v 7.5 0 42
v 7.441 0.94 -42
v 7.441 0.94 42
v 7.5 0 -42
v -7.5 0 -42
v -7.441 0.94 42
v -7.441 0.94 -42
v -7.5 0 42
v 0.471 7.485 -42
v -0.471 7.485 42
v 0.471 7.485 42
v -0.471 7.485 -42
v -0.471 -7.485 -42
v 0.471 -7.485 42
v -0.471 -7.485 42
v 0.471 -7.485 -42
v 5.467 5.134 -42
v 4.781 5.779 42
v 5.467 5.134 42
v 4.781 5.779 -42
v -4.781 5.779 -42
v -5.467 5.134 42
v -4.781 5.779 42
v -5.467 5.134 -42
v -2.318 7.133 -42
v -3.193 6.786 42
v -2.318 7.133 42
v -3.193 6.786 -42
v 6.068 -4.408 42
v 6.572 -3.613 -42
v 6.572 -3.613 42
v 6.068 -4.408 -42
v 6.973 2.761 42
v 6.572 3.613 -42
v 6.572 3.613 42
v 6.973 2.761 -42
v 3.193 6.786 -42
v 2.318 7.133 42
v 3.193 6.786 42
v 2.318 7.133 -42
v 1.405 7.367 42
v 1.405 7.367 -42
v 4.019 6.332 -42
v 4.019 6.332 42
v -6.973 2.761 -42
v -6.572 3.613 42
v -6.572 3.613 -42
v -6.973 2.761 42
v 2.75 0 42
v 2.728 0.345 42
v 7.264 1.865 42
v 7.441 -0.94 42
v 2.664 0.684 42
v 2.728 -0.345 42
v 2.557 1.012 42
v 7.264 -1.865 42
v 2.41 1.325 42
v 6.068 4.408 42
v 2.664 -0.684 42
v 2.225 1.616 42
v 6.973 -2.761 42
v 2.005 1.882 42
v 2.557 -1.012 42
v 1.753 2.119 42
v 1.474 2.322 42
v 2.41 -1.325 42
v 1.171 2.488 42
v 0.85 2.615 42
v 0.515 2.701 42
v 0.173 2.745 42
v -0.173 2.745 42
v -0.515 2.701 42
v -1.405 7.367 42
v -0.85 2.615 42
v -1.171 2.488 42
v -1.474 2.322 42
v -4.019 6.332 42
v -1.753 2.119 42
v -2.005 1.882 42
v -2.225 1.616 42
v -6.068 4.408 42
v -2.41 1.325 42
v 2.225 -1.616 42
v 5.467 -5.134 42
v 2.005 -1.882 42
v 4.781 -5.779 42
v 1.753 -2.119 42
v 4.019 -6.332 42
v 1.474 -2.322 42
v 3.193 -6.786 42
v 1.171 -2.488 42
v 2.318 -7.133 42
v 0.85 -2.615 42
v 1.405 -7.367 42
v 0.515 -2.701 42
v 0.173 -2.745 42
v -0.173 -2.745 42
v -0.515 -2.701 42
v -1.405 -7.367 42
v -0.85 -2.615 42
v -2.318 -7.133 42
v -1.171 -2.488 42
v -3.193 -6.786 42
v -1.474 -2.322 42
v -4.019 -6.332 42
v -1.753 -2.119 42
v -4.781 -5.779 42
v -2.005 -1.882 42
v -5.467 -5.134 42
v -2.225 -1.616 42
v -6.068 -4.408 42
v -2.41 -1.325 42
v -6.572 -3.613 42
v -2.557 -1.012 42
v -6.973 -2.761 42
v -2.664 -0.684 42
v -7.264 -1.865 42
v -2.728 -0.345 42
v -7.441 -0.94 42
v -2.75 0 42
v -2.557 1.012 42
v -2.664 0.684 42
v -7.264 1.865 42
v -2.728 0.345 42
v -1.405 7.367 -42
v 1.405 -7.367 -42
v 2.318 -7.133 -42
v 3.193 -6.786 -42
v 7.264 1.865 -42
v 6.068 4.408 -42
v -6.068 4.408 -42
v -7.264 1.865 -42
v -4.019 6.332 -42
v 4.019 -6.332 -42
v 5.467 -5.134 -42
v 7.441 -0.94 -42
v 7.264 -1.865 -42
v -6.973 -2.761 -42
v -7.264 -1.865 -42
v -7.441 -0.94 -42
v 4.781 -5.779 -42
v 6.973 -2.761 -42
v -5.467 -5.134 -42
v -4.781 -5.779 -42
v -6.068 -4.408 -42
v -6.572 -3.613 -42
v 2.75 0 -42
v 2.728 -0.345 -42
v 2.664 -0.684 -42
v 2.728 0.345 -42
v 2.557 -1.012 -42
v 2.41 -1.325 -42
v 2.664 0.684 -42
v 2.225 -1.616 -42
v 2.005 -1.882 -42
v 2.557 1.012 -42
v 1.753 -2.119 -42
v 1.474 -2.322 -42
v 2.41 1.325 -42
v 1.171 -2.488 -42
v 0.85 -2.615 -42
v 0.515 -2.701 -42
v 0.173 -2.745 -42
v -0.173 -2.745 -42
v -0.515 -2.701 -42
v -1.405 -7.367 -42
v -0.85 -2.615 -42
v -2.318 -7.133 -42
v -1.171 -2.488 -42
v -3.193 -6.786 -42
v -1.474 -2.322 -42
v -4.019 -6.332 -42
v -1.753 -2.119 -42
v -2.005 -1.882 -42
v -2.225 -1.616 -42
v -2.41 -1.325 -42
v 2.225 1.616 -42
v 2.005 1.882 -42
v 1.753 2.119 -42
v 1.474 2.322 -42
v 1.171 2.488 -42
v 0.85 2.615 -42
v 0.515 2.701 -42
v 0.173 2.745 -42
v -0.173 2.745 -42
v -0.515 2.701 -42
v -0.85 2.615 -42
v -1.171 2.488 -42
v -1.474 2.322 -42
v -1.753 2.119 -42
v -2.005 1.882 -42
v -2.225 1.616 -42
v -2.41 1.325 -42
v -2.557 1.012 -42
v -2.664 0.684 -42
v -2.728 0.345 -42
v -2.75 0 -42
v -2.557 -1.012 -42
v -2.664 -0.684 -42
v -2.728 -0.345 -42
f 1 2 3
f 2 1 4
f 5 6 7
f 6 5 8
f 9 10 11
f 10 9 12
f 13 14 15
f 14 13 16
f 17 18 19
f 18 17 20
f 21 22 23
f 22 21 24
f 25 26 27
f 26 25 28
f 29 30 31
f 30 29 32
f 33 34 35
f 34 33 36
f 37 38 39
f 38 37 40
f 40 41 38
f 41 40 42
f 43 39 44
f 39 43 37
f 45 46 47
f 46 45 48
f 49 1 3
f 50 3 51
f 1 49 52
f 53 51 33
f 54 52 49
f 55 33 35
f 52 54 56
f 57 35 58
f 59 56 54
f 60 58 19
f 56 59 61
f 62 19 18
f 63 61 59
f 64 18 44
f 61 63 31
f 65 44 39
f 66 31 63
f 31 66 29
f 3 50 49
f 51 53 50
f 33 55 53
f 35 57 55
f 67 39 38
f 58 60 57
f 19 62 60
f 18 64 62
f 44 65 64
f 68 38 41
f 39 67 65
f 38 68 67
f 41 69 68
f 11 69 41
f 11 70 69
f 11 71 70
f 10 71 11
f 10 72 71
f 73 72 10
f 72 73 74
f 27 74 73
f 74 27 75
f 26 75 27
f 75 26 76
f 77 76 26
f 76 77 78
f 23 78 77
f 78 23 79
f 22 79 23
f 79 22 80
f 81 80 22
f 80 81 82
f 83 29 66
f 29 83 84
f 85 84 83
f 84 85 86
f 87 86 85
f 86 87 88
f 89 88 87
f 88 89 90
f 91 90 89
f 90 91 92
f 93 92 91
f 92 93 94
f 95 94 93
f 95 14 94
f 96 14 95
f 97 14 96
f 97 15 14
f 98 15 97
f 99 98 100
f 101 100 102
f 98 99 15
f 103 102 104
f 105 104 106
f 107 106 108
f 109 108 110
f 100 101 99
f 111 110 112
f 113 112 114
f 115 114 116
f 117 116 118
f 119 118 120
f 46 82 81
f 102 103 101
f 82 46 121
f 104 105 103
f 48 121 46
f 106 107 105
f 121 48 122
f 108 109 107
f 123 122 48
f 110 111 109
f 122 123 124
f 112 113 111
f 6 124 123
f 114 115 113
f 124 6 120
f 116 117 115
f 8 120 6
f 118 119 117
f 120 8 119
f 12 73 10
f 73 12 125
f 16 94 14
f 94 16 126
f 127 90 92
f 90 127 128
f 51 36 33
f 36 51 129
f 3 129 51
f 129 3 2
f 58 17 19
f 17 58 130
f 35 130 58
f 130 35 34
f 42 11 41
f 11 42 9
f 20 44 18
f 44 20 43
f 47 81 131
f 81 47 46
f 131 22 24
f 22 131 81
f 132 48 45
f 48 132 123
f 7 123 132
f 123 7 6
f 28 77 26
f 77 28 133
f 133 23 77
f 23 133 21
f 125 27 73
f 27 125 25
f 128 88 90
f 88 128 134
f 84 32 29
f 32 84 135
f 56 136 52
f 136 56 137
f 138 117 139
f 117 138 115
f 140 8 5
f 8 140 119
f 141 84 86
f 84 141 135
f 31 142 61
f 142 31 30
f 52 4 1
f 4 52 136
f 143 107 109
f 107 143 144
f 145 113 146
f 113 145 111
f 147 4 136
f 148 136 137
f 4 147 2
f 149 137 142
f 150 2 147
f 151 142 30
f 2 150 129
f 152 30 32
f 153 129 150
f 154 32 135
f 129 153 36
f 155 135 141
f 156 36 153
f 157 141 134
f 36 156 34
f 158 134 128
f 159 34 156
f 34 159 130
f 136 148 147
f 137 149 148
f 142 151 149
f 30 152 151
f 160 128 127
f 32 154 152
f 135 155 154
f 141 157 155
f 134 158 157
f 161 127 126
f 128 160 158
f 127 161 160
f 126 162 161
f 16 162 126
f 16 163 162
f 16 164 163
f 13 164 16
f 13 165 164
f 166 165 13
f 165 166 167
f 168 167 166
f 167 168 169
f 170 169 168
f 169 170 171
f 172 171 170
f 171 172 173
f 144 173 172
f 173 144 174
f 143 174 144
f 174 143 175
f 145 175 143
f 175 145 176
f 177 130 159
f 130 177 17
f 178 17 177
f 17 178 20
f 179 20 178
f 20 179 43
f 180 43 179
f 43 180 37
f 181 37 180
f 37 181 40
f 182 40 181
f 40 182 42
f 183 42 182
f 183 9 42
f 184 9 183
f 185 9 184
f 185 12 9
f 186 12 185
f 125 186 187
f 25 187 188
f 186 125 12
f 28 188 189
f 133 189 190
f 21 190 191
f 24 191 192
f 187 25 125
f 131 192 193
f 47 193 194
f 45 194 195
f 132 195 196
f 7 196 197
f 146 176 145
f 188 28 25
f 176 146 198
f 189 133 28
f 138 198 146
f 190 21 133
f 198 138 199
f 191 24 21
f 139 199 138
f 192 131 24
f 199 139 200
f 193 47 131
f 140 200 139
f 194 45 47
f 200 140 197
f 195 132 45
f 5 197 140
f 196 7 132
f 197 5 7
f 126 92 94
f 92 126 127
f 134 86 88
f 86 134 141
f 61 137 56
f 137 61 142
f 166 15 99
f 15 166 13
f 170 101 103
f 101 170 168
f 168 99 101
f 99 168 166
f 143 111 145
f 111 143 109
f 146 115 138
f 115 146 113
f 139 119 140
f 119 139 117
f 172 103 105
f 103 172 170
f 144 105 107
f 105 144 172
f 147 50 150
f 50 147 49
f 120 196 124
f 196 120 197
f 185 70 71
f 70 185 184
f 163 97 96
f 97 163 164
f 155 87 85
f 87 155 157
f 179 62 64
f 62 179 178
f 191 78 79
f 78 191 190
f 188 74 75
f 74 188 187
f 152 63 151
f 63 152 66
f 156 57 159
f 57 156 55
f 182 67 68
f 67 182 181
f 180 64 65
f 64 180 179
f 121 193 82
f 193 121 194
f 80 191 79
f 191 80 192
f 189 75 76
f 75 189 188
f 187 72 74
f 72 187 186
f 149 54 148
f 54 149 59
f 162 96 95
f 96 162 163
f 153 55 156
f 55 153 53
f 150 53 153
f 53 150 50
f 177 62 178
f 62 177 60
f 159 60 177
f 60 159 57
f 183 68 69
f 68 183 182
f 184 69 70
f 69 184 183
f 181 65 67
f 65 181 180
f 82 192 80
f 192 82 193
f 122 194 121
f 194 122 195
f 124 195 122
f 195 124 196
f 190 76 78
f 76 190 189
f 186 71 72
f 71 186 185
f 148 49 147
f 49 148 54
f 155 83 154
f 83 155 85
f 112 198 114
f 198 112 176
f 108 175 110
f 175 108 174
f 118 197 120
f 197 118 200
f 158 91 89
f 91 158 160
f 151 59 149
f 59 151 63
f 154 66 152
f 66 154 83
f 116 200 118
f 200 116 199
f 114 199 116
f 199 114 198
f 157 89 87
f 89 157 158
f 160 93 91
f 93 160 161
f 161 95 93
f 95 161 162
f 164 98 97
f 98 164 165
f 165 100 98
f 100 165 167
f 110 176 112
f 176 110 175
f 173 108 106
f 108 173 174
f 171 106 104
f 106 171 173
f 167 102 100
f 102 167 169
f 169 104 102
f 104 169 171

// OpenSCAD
$fn = 50;


difference() {
	union() {
		translate(v = [0, 0, -42.0000000000]) {
			cylinder(h = 84, r = 7.5000000000);
		}
	}
	union() {
		translate(v = [0, 0, -100.0000000000]) {
			cylinder(h = 200, r = 2.7500000000);
		}
	}
}
